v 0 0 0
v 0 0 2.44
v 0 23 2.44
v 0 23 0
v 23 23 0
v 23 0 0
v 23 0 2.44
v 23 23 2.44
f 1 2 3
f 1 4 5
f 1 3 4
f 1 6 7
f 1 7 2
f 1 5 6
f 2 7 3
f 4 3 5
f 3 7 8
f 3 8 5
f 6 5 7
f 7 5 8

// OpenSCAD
/* Warning, this is a very basic generator with a lot of approximation 
input data : [PBGA, QYC, 23x23x2.44mm, 484, , A, C04-25590A]
generated by com.zoubworld.electronics.cad.model3d.Basic
Date : Sun Feb 15 10:50:49 CET 2026
*/

//body
color("black")
translate([0,0,0])
cube([23.0,23.0,2.44], center=false);
